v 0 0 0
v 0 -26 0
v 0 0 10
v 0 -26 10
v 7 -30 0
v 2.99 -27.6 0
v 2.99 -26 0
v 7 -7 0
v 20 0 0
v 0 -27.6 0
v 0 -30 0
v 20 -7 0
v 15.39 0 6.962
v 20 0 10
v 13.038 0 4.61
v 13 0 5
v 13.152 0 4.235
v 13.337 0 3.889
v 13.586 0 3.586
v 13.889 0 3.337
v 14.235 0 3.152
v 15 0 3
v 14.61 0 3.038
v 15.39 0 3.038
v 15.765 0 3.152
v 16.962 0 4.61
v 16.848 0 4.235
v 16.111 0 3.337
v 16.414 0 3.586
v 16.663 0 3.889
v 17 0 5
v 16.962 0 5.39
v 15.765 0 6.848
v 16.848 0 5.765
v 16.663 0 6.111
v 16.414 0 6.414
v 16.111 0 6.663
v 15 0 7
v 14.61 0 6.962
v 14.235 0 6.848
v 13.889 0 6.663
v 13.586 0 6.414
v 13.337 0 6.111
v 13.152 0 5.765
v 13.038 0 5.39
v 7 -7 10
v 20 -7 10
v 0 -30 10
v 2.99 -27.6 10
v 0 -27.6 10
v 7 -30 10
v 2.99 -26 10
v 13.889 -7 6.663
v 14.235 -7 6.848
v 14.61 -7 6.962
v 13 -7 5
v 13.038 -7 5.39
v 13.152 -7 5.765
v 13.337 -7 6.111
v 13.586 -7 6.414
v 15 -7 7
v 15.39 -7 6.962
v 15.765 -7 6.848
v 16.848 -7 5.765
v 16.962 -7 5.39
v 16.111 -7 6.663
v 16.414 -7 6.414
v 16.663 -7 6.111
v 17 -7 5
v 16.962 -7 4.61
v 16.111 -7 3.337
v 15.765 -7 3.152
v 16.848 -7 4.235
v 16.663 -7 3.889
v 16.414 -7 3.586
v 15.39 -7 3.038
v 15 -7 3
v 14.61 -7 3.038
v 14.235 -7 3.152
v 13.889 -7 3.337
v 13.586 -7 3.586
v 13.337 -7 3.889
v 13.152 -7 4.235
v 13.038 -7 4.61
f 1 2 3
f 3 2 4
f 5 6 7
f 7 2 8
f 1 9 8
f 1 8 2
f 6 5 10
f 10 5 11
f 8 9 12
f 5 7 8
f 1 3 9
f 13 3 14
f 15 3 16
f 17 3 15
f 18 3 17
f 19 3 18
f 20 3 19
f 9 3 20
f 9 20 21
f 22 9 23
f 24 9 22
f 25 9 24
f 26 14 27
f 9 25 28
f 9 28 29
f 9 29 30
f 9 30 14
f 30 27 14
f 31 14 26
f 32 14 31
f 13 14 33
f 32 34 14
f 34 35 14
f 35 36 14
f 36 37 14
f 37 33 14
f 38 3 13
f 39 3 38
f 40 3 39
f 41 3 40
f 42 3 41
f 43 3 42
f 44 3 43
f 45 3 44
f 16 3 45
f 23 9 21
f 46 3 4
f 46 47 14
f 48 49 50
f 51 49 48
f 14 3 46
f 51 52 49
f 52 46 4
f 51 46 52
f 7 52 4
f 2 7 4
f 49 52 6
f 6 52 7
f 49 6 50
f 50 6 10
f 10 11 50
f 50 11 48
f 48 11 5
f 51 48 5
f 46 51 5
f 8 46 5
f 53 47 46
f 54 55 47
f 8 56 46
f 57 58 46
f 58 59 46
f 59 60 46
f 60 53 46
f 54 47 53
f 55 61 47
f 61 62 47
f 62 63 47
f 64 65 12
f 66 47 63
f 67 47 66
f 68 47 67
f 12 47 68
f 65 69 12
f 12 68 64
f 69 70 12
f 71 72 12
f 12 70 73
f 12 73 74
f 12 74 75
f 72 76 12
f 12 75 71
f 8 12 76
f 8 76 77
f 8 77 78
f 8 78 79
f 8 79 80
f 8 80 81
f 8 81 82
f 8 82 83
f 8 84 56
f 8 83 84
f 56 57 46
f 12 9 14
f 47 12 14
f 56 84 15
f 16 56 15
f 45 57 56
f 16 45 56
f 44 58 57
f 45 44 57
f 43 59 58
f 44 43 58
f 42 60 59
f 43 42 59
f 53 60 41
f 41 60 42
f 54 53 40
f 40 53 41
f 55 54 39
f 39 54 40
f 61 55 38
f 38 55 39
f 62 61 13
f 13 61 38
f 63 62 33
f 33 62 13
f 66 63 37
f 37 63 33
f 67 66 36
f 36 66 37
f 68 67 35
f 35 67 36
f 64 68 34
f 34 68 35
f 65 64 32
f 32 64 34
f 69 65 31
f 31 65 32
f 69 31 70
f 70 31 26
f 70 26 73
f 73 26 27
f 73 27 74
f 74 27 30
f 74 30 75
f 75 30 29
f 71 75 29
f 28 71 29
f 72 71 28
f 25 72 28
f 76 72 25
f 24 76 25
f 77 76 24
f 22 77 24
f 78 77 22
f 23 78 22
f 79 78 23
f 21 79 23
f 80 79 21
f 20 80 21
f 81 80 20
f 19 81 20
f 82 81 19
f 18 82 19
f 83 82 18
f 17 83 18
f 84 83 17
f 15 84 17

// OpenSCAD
// 41,2 68,15
// 20mm luft nach unten
// 1.6mm dick

pcb_x = 68.15;
pcb_y = 41.2;
pcb_z = 1.6;

h_x = 75;
h_y = 47;
h_z = 30;

wall = 4;

rotate([90,0,0]) difference() {
    cube([20, 10, 30]);
    union() {
        translate([7, -1, 7]) cube([20, 12, 30]);
        translate([-0.01, -1, 30-4]) cube([1+2,12,pcb_z]);
        translate([15,10/2,-1]) cylinder(10, r=2, $fn=32);
    }
}
